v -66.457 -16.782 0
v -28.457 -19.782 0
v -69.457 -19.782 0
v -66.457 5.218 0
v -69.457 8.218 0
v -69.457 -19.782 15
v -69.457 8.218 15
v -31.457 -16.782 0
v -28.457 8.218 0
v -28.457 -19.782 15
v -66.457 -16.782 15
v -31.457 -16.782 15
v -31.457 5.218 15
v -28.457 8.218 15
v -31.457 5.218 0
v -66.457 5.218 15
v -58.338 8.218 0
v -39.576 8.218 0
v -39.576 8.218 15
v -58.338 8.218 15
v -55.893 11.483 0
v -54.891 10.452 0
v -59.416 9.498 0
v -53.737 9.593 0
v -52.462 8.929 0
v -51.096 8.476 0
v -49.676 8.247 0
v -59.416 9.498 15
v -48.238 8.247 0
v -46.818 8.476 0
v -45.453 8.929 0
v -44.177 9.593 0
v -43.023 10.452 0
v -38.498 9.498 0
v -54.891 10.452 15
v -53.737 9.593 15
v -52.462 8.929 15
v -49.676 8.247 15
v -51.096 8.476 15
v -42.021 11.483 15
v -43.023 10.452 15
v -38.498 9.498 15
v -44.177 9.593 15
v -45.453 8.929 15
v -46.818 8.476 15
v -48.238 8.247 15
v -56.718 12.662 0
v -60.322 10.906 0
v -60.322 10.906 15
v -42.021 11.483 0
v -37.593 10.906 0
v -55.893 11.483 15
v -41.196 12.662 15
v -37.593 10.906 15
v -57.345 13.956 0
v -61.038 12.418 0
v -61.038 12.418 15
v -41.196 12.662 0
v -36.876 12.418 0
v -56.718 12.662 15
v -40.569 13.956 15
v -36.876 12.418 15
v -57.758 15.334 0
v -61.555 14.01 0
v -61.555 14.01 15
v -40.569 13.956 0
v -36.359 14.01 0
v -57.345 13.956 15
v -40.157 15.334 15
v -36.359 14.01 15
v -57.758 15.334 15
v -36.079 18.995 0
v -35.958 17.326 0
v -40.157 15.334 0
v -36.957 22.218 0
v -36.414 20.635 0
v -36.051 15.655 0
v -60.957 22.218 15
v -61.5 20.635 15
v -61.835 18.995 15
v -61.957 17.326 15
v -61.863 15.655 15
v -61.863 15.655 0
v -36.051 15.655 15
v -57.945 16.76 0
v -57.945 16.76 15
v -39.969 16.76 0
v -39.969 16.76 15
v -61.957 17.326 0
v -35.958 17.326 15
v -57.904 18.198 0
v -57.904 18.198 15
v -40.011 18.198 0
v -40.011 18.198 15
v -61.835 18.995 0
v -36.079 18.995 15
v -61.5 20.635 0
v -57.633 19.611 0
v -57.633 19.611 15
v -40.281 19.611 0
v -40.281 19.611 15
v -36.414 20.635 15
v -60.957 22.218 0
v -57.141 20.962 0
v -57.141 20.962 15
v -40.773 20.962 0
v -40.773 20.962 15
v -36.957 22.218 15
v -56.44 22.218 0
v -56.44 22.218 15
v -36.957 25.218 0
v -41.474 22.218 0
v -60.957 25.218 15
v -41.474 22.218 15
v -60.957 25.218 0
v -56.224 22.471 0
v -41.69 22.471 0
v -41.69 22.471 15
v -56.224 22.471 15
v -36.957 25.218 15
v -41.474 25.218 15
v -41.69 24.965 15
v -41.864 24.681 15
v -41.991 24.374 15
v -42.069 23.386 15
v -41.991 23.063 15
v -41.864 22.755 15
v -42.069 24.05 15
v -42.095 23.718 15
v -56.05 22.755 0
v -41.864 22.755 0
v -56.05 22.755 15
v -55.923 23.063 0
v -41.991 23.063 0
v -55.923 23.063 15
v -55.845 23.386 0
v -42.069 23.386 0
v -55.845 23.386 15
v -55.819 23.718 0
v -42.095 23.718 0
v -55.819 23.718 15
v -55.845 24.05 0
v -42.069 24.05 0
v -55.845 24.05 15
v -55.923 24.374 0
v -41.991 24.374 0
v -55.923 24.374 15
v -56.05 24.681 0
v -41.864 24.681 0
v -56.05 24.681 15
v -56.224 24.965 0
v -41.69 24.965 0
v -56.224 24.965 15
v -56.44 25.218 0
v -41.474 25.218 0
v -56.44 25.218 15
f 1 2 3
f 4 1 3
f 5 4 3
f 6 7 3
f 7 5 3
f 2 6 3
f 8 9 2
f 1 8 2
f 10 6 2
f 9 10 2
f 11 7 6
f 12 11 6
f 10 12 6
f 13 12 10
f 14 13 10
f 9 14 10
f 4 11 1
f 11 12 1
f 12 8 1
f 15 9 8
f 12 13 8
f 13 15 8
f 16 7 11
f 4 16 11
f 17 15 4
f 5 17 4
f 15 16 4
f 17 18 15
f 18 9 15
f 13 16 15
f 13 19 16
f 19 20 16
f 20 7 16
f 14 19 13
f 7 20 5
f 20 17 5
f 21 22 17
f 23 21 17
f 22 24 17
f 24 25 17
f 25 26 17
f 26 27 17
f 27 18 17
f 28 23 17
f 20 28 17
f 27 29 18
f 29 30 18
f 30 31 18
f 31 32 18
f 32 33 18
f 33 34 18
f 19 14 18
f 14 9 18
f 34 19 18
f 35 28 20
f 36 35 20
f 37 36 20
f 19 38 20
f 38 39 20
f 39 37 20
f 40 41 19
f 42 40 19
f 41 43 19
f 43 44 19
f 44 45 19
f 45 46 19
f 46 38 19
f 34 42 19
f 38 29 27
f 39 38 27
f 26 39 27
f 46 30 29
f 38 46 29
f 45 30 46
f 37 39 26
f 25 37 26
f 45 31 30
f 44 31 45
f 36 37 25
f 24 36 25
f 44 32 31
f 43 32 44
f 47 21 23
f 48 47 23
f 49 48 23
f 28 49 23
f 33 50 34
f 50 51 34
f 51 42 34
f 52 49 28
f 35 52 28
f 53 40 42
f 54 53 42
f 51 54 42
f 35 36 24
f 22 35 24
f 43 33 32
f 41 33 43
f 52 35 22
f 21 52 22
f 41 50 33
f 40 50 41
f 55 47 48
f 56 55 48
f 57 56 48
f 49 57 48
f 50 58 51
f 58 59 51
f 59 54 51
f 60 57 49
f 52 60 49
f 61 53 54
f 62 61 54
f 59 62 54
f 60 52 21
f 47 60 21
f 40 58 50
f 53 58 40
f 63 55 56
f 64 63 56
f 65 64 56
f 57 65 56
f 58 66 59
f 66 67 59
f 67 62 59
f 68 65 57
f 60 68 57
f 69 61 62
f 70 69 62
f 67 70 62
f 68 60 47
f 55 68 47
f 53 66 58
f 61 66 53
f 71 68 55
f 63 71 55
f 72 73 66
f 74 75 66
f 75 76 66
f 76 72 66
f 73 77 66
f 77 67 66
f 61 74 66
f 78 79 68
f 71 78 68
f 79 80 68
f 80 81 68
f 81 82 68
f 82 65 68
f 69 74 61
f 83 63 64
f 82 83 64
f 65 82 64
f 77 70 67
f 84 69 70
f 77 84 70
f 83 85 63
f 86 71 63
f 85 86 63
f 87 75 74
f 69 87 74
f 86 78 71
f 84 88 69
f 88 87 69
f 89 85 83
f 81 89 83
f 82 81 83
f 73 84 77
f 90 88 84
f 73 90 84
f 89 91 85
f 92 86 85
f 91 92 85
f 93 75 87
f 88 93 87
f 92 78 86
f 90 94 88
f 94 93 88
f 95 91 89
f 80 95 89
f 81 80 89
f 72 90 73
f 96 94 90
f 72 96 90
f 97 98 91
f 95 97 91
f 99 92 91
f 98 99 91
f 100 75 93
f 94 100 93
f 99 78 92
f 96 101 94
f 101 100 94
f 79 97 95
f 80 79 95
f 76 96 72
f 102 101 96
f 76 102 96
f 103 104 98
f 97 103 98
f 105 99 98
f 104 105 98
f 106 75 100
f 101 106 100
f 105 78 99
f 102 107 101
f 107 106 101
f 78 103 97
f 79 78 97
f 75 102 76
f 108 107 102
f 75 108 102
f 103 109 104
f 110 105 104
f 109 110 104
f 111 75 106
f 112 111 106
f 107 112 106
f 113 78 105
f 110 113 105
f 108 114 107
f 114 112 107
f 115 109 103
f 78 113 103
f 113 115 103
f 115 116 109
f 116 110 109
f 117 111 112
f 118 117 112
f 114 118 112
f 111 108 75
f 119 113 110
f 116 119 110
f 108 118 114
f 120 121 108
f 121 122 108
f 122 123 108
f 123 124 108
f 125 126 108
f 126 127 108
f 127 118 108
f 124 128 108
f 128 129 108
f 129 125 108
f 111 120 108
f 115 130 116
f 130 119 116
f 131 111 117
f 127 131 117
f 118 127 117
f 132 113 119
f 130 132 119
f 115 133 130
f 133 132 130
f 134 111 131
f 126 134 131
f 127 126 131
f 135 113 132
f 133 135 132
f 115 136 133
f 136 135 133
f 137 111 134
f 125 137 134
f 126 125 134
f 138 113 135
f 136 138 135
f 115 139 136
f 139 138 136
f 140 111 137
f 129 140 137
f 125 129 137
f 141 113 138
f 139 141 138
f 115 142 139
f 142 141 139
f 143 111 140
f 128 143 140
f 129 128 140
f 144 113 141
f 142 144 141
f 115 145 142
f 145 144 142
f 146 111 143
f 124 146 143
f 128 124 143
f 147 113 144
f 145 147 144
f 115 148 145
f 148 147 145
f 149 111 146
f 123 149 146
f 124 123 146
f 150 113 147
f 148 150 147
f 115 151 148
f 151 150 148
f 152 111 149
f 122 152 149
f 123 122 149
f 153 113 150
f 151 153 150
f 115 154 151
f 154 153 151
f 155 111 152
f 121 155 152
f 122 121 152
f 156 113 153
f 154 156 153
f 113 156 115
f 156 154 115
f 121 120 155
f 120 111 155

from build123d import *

# Parameters (mm, degrees)
CROQUIS1_W              = 35
CROQUIS1_H              = 22
SALIENTE_EXTRUIR1_DEPTH = 15


with BuildPart() as part:
    # Croquis1 → Saliente-Extruir1 (new body)
    with BuildSketch(Plane.XY):
        with BuildLine():
            Line((-69.45710358, 8.218313922), (-69.45710358, -19.781686078))
            Line((-69.45710358, -19.781686078), (-28.45710358, -19.781686078))
            Line((-28.45710358, -19.781686078), (-28.45710358, 8.218313922))
            Line((-28.45710358, 8.218313922), (-39.57627206, 8.218313922))
            ThreePointArc((-39.57627206, 8.218313922), (-36.178802084, 14.827705029), (-36.95710358, 22.218313922))
            Line((-36.95710358, 22.218313922), (-36.95710358, 25.218313922))
            Line((-36.95710358, 25.218313922), (-41.473788806, 25.218313922))
            ThreePointArc((-41.473788806, 25.218313922), (-42.09510915, 23.718313922), (-41.473788806, 22.218313922))
            ThreePointArc((-41.473788806, 22.218313922), (-48.95710358, 8.218313922), (-56.440418353, 22.218313922))
            ThreePointArc((-56.440418353, 22.218313922), (-55.81909801, 23.718313922), (-56.440418353, 25.218313922))
            Line((-56.440418353, 25.218313922), (-60.95710358, 25.218313922))
            Line((-60.95710358, 25.218313922), (-60.95710358, 22.218313922))
            ThreePointArc((-60.95710358, 22.218313922), (-61.735405076, 14.827705029), (-58.3379351, 8.218313922))
            Line((-58.3379351, 8.218313922), (-69.45710358, 8.218313922))
        make_face()
        with Locations((-48.95710358, -5.781686078)):
            Rectangle(CROQUIS1_W, CROQUIS1_H, mode=Mode.SUBTRACT)
    extrude(amount=SALIENTE_EXTRUIR1_DEPTH)


solid = part.part
